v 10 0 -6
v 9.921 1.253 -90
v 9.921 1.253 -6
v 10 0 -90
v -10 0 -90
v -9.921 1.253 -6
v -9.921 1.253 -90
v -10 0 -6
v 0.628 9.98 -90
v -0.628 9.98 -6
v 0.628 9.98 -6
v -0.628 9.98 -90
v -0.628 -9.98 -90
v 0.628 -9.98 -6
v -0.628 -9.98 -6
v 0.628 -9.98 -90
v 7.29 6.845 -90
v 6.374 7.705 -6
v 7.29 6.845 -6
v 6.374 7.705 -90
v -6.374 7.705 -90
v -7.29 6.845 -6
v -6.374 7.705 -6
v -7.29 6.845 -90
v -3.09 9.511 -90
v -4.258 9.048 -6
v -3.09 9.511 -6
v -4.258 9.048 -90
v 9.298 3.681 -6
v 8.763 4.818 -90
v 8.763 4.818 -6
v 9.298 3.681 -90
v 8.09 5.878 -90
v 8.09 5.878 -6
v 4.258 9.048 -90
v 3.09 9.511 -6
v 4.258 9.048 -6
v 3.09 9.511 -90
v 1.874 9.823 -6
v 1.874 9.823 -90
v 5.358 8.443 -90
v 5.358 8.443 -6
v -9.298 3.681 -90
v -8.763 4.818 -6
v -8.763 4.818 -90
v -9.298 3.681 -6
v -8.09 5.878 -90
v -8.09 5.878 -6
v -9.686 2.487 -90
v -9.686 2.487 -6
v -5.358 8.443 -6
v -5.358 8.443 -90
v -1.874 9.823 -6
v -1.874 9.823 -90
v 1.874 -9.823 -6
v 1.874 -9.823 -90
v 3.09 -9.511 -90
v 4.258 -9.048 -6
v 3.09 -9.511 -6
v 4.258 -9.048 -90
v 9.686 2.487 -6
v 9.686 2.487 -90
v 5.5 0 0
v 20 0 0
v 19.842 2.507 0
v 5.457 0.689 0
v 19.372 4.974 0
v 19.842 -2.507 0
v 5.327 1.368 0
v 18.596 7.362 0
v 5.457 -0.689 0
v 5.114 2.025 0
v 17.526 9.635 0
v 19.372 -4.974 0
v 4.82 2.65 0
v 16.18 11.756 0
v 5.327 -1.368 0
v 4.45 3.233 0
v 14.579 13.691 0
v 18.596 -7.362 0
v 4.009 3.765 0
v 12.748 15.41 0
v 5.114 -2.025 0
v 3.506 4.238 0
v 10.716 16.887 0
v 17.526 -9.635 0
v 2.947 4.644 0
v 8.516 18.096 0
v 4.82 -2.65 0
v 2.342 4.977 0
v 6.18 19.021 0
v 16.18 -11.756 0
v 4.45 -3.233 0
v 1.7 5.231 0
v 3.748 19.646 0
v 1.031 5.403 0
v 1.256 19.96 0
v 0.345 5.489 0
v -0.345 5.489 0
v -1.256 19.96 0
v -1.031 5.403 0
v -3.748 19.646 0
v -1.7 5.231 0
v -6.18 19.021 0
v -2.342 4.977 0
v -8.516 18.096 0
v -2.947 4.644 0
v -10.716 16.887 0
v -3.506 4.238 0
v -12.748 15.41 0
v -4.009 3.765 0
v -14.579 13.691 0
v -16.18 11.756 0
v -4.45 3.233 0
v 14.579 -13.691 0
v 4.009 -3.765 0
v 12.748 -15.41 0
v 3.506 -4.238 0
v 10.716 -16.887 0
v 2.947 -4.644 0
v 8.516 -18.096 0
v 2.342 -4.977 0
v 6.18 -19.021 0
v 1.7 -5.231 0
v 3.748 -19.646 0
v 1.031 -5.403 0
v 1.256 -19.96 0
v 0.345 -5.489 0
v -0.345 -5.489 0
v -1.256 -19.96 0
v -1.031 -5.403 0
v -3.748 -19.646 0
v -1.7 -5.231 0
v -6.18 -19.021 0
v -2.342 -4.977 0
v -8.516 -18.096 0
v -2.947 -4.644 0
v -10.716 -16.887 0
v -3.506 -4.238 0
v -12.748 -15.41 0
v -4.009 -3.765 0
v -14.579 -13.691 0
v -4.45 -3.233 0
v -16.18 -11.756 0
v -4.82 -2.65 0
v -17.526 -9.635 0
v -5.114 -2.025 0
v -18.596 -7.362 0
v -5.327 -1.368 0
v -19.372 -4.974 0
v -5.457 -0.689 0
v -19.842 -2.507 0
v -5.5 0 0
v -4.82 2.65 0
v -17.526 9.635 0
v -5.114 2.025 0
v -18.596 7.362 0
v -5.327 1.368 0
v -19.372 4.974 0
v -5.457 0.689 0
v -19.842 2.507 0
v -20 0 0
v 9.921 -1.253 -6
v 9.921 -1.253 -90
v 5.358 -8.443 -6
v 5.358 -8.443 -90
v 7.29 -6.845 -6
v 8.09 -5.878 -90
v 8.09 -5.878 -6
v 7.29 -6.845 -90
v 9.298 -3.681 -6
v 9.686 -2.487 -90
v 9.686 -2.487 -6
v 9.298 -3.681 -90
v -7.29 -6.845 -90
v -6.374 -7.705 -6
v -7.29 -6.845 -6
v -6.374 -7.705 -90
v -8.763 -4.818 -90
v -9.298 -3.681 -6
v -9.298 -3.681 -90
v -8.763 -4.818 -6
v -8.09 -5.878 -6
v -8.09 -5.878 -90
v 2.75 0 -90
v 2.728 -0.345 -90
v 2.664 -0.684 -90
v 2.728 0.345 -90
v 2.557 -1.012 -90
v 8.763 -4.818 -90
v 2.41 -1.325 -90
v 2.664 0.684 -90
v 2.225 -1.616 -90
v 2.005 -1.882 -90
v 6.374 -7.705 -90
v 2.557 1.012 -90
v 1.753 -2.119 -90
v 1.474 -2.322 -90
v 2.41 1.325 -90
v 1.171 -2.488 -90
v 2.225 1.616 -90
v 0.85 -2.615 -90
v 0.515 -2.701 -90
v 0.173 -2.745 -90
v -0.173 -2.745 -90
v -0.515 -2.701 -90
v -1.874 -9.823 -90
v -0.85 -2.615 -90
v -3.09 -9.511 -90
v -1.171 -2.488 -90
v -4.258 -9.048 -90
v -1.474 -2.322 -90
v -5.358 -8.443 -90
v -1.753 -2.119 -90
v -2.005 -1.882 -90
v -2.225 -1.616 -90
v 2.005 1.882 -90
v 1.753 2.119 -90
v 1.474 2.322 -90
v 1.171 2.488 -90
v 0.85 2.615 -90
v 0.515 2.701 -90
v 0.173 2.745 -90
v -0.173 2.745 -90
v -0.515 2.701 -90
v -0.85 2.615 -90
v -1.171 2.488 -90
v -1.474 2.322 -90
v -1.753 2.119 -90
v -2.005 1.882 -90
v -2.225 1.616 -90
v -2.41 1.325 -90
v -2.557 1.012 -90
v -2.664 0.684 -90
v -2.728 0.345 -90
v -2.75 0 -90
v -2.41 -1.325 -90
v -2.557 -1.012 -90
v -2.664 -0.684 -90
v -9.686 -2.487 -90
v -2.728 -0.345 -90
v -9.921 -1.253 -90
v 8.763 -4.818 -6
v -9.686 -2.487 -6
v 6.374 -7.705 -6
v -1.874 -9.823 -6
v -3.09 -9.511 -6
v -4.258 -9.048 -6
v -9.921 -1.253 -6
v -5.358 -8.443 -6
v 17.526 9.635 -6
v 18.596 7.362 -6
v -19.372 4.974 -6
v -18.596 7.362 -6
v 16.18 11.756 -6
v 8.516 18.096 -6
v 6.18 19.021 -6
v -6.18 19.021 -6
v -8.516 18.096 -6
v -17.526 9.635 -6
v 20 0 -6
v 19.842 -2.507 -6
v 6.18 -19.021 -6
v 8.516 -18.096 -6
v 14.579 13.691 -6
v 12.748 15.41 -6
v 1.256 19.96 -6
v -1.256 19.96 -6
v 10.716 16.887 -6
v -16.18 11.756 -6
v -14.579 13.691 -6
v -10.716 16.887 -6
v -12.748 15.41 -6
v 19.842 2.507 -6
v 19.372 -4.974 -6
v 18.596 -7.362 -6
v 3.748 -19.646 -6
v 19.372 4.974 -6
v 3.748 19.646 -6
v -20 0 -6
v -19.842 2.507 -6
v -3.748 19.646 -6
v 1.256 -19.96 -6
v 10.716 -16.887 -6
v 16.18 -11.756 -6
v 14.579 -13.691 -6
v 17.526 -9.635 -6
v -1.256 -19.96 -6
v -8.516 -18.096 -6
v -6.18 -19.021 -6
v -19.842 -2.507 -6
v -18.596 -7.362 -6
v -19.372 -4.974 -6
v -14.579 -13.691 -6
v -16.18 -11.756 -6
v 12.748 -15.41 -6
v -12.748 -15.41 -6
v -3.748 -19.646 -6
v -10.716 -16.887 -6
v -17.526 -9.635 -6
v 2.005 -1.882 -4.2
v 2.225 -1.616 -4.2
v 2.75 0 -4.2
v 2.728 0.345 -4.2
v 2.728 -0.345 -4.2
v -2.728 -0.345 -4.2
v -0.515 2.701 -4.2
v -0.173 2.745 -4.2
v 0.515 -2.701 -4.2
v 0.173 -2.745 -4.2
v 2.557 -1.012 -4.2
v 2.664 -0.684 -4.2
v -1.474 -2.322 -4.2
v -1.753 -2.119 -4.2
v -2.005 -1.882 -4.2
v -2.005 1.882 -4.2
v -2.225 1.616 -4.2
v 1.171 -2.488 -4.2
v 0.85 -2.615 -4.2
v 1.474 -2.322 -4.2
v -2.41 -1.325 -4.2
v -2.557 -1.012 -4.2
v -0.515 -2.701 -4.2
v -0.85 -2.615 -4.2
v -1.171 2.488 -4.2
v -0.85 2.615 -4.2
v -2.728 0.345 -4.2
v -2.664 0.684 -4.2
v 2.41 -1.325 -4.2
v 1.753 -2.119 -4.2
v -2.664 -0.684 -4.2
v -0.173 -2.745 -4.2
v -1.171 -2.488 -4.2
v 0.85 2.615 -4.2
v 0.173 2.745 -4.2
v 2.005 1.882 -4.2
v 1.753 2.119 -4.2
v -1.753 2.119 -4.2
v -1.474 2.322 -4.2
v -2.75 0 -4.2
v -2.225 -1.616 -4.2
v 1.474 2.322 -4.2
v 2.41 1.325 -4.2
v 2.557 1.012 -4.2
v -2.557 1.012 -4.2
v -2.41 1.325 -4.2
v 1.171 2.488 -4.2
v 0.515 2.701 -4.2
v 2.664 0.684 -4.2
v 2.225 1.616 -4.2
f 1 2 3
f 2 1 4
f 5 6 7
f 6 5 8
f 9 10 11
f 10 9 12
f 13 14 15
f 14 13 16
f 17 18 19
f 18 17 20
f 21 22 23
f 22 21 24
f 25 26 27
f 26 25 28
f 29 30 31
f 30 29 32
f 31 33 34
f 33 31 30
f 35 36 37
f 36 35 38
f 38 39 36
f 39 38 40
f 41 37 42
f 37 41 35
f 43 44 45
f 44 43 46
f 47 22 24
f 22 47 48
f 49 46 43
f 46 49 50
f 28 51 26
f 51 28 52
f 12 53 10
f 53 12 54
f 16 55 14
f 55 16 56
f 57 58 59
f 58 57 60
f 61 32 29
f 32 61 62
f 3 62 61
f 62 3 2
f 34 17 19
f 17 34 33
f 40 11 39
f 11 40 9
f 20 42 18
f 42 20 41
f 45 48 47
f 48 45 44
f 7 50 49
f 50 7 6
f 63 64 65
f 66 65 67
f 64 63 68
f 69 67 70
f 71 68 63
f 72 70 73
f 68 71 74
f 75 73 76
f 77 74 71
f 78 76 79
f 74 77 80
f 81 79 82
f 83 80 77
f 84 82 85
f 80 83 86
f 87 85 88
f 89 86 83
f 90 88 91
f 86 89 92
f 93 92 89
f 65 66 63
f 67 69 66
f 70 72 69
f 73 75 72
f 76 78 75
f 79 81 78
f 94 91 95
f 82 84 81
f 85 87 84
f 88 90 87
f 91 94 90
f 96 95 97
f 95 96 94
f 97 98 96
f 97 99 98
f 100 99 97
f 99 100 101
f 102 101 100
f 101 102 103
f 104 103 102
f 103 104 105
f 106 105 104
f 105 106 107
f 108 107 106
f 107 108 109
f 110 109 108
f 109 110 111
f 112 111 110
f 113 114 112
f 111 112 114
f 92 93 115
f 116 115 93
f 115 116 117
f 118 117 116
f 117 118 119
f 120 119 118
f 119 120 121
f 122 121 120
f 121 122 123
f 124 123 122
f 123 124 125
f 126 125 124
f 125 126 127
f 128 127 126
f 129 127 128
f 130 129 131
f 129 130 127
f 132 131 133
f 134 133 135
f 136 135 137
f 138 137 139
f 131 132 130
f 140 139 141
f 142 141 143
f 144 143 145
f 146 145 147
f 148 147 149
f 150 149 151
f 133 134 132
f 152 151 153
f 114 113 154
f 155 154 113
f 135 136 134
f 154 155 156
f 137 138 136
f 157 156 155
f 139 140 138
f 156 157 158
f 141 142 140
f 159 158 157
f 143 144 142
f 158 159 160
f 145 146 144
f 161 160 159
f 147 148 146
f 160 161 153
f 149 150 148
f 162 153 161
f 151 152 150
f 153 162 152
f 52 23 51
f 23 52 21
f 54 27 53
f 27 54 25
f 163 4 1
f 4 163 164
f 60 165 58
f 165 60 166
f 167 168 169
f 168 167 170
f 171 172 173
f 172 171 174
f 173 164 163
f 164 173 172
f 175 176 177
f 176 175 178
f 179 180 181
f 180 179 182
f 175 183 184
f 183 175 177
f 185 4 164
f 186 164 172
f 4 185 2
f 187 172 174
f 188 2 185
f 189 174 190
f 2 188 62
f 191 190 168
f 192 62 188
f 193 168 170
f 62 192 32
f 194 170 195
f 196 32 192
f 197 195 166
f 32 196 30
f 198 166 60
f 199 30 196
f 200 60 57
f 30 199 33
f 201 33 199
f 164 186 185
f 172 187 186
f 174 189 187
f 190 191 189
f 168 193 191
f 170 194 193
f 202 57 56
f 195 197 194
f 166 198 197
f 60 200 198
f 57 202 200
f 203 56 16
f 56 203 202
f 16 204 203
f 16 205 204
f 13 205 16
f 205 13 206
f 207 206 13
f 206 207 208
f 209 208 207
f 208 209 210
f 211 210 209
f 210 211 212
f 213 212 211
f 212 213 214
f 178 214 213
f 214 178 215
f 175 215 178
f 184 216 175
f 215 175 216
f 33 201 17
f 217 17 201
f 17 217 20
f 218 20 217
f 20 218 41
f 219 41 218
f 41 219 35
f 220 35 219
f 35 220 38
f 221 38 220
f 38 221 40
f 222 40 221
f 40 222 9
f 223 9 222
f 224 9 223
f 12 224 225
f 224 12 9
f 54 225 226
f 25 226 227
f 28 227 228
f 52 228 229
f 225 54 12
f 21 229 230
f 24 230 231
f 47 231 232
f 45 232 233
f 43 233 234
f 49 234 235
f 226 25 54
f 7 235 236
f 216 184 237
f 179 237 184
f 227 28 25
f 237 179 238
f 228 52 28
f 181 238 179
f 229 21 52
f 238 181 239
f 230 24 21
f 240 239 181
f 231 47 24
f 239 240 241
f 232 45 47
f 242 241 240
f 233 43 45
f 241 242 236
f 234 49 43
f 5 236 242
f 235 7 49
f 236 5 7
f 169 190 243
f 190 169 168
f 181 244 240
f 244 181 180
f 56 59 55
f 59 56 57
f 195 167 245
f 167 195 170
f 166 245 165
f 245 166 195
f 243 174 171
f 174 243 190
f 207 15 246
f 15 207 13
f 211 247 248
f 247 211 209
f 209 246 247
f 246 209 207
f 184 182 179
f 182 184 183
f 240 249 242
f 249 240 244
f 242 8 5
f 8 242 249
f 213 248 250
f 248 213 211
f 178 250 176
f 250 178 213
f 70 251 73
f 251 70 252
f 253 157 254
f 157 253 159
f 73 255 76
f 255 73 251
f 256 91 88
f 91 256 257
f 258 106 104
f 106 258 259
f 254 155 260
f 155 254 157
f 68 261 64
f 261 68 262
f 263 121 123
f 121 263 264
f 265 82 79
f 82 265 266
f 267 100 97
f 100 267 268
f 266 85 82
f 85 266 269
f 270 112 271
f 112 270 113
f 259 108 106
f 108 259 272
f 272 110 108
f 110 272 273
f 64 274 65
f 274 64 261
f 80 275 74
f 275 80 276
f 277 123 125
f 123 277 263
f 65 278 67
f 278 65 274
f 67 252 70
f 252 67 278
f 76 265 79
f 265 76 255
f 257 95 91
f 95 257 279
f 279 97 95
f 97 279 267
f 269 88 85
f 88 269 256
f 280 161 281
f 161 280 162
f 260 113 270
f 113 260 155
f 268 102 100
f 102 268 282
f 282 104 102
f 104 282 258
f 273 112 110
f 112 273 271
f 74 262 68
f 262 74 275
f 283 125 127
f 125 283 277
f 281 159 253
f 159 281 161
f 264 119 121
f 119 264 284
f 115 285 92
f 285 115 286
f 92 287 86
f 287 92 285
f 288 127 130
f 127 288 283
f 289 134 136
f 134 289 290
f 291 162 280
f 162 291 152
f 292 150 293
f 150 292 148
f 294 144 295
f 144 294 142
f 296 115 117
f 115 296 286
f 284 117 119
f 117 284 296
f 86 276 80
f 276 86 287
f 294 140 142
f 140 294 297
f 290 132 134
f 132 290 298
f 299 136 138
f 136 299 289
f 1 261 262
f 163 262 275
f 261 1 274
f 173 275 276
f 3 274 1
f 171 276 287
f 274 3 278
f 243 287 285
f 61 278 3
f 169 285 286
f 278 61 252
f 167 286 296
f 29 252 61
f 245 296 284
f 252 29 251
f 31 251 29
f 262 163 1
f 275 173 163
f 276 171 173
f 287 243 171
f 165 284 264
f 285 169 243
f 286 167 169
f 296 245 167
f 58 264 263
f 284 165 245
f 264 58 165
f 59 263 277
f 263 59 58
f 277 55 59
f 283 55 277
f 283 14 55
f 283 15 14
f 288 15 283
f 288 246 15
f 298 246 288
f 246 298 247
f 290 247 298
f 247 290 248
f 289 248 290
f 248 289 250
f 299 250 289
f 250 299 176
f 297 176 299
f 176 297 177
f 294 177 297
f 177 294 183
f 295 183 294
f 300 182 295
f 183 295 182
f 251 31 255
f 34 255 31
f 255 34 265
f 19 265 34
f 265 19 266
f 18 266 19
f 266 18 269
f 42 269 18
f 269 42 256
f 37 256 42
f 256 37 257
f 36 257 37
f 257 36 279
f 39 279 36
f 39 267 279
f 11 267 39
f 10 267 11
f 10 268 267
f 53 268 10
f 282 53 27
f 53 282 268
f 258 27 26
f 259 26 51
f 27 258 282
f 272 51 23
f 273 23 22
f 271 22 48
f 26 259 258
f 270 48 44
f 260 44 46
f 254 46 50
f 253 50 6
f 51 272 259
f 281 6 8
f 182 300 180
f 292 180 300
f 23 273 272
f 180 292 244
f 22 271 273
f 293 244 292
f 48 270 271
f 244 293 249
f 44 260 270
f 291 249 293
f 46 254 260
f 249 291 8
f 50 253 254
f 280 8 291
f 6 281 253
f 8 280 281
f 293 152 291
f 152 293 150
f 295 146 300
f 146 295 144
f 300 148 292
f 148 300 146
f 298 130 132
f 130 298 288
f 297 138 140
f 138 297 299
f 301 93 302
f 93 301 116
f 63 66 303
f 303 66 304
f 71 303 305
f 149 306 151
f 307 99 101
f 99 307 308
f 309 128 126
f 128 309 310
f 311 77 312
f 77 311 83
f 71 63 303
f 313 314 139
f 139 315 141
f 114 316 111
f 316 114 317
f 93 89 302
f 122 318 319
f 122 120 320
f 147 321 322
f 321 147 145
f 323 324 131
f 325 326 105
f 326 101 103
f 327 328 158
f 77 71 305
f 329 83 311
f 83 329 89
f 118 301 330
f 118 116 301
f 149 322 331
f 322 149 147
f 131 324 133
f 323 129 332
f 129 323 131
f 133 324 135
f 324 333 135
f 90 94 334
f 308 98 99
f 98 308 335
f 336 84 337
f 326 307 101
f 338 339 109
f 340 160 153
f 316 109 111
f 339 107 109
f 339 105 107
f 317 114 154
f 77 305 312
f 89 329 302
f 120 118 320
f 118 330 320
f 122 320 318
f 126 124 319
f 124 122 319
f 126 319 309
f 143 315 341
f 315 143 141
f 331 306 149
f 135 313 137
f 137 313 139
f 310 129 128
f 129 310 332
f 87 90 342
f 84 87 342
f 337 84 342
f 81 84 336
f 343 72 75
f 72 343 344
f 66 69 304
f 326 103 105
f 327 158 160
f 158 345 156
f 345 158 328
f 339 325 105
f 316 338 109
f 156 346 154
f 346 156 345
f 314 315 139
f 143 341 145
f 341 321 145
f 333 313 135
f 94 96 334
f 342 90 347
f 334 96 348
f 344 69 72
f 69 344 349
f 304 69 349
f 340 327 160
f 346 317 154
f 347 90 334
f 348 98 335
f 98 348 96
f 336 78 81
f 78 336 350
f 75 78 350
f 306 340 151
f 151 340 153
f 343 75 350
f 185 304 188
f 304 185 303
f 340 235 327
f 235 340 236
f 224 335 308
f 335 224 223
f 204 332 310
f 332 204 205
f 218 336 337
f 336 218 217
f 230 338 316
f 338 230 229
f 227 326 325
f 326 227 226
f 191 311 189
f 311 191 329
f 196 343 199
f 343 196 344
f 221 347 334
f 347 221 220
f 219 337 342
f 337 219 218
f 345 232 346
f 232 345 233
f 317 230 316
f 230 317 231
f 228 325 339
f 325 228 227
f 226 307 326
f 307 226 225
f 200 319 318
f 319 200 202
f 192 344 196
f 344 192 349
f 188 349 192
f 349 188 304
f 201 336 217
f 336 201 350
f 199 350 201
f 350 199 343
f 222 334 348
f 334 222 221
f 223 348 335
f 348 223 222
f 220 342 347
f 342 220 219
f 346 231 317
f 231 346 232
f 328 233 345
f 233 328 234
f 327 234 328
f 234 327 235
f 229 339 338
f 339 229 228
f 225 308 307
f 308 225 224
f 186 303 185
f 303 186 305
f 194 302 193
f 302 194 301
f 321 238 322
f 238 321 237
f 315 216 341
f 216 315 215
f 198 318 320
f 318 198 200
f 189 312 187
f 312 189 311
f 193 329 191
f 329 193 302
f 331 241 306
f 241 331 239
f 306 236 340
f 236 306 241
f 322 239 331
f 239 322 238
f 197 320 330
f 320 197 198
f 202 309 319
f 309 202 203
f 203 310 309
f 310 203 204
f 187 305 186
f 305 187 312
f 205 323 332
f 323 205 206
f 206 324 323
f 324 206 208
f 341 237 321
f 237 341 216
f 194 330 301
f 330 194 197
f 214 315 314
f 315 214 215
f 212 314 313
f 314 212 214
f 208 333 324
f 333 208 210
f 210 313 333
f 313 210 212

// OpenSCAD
$fn = 50;


difference() {
	union() {
		translate(v = [0, 0, -90.0000000000]) {
			cylinder(h = 90, r = 10.0000000000);
		}
		translate(v = [0, 0, -6.0000000000]) {
			cylinder(h = 6, r = 20.0000000000);
		}
	}
	union() {
		translate(v = [0, 0, 0]) {
			rotate(a = [0, 0, 0]) {
				difference() {
					union() {
						#translate(v = [0, 0, -90.0000000000]) {
							cylinder(h = 90, r = 2.2500000000);
						}
						#translate(v = [0, 0, -4.2000000000]) {
							cylinder(h = 4.2000000000, r1 = 2.7500000000, r2 = 5.5000000000);
						}
						#translate(v = [0, 0, -90.0000000000]) {
							cylinder(h = 90, r = 2.7500000000);
						}
						#translate(v = [0, 0, -90.0000000000]) {
							cylinder(h = 90, r = 2.2500000000);
						}
					}
					union();
				}
			}
		}
	}
}
